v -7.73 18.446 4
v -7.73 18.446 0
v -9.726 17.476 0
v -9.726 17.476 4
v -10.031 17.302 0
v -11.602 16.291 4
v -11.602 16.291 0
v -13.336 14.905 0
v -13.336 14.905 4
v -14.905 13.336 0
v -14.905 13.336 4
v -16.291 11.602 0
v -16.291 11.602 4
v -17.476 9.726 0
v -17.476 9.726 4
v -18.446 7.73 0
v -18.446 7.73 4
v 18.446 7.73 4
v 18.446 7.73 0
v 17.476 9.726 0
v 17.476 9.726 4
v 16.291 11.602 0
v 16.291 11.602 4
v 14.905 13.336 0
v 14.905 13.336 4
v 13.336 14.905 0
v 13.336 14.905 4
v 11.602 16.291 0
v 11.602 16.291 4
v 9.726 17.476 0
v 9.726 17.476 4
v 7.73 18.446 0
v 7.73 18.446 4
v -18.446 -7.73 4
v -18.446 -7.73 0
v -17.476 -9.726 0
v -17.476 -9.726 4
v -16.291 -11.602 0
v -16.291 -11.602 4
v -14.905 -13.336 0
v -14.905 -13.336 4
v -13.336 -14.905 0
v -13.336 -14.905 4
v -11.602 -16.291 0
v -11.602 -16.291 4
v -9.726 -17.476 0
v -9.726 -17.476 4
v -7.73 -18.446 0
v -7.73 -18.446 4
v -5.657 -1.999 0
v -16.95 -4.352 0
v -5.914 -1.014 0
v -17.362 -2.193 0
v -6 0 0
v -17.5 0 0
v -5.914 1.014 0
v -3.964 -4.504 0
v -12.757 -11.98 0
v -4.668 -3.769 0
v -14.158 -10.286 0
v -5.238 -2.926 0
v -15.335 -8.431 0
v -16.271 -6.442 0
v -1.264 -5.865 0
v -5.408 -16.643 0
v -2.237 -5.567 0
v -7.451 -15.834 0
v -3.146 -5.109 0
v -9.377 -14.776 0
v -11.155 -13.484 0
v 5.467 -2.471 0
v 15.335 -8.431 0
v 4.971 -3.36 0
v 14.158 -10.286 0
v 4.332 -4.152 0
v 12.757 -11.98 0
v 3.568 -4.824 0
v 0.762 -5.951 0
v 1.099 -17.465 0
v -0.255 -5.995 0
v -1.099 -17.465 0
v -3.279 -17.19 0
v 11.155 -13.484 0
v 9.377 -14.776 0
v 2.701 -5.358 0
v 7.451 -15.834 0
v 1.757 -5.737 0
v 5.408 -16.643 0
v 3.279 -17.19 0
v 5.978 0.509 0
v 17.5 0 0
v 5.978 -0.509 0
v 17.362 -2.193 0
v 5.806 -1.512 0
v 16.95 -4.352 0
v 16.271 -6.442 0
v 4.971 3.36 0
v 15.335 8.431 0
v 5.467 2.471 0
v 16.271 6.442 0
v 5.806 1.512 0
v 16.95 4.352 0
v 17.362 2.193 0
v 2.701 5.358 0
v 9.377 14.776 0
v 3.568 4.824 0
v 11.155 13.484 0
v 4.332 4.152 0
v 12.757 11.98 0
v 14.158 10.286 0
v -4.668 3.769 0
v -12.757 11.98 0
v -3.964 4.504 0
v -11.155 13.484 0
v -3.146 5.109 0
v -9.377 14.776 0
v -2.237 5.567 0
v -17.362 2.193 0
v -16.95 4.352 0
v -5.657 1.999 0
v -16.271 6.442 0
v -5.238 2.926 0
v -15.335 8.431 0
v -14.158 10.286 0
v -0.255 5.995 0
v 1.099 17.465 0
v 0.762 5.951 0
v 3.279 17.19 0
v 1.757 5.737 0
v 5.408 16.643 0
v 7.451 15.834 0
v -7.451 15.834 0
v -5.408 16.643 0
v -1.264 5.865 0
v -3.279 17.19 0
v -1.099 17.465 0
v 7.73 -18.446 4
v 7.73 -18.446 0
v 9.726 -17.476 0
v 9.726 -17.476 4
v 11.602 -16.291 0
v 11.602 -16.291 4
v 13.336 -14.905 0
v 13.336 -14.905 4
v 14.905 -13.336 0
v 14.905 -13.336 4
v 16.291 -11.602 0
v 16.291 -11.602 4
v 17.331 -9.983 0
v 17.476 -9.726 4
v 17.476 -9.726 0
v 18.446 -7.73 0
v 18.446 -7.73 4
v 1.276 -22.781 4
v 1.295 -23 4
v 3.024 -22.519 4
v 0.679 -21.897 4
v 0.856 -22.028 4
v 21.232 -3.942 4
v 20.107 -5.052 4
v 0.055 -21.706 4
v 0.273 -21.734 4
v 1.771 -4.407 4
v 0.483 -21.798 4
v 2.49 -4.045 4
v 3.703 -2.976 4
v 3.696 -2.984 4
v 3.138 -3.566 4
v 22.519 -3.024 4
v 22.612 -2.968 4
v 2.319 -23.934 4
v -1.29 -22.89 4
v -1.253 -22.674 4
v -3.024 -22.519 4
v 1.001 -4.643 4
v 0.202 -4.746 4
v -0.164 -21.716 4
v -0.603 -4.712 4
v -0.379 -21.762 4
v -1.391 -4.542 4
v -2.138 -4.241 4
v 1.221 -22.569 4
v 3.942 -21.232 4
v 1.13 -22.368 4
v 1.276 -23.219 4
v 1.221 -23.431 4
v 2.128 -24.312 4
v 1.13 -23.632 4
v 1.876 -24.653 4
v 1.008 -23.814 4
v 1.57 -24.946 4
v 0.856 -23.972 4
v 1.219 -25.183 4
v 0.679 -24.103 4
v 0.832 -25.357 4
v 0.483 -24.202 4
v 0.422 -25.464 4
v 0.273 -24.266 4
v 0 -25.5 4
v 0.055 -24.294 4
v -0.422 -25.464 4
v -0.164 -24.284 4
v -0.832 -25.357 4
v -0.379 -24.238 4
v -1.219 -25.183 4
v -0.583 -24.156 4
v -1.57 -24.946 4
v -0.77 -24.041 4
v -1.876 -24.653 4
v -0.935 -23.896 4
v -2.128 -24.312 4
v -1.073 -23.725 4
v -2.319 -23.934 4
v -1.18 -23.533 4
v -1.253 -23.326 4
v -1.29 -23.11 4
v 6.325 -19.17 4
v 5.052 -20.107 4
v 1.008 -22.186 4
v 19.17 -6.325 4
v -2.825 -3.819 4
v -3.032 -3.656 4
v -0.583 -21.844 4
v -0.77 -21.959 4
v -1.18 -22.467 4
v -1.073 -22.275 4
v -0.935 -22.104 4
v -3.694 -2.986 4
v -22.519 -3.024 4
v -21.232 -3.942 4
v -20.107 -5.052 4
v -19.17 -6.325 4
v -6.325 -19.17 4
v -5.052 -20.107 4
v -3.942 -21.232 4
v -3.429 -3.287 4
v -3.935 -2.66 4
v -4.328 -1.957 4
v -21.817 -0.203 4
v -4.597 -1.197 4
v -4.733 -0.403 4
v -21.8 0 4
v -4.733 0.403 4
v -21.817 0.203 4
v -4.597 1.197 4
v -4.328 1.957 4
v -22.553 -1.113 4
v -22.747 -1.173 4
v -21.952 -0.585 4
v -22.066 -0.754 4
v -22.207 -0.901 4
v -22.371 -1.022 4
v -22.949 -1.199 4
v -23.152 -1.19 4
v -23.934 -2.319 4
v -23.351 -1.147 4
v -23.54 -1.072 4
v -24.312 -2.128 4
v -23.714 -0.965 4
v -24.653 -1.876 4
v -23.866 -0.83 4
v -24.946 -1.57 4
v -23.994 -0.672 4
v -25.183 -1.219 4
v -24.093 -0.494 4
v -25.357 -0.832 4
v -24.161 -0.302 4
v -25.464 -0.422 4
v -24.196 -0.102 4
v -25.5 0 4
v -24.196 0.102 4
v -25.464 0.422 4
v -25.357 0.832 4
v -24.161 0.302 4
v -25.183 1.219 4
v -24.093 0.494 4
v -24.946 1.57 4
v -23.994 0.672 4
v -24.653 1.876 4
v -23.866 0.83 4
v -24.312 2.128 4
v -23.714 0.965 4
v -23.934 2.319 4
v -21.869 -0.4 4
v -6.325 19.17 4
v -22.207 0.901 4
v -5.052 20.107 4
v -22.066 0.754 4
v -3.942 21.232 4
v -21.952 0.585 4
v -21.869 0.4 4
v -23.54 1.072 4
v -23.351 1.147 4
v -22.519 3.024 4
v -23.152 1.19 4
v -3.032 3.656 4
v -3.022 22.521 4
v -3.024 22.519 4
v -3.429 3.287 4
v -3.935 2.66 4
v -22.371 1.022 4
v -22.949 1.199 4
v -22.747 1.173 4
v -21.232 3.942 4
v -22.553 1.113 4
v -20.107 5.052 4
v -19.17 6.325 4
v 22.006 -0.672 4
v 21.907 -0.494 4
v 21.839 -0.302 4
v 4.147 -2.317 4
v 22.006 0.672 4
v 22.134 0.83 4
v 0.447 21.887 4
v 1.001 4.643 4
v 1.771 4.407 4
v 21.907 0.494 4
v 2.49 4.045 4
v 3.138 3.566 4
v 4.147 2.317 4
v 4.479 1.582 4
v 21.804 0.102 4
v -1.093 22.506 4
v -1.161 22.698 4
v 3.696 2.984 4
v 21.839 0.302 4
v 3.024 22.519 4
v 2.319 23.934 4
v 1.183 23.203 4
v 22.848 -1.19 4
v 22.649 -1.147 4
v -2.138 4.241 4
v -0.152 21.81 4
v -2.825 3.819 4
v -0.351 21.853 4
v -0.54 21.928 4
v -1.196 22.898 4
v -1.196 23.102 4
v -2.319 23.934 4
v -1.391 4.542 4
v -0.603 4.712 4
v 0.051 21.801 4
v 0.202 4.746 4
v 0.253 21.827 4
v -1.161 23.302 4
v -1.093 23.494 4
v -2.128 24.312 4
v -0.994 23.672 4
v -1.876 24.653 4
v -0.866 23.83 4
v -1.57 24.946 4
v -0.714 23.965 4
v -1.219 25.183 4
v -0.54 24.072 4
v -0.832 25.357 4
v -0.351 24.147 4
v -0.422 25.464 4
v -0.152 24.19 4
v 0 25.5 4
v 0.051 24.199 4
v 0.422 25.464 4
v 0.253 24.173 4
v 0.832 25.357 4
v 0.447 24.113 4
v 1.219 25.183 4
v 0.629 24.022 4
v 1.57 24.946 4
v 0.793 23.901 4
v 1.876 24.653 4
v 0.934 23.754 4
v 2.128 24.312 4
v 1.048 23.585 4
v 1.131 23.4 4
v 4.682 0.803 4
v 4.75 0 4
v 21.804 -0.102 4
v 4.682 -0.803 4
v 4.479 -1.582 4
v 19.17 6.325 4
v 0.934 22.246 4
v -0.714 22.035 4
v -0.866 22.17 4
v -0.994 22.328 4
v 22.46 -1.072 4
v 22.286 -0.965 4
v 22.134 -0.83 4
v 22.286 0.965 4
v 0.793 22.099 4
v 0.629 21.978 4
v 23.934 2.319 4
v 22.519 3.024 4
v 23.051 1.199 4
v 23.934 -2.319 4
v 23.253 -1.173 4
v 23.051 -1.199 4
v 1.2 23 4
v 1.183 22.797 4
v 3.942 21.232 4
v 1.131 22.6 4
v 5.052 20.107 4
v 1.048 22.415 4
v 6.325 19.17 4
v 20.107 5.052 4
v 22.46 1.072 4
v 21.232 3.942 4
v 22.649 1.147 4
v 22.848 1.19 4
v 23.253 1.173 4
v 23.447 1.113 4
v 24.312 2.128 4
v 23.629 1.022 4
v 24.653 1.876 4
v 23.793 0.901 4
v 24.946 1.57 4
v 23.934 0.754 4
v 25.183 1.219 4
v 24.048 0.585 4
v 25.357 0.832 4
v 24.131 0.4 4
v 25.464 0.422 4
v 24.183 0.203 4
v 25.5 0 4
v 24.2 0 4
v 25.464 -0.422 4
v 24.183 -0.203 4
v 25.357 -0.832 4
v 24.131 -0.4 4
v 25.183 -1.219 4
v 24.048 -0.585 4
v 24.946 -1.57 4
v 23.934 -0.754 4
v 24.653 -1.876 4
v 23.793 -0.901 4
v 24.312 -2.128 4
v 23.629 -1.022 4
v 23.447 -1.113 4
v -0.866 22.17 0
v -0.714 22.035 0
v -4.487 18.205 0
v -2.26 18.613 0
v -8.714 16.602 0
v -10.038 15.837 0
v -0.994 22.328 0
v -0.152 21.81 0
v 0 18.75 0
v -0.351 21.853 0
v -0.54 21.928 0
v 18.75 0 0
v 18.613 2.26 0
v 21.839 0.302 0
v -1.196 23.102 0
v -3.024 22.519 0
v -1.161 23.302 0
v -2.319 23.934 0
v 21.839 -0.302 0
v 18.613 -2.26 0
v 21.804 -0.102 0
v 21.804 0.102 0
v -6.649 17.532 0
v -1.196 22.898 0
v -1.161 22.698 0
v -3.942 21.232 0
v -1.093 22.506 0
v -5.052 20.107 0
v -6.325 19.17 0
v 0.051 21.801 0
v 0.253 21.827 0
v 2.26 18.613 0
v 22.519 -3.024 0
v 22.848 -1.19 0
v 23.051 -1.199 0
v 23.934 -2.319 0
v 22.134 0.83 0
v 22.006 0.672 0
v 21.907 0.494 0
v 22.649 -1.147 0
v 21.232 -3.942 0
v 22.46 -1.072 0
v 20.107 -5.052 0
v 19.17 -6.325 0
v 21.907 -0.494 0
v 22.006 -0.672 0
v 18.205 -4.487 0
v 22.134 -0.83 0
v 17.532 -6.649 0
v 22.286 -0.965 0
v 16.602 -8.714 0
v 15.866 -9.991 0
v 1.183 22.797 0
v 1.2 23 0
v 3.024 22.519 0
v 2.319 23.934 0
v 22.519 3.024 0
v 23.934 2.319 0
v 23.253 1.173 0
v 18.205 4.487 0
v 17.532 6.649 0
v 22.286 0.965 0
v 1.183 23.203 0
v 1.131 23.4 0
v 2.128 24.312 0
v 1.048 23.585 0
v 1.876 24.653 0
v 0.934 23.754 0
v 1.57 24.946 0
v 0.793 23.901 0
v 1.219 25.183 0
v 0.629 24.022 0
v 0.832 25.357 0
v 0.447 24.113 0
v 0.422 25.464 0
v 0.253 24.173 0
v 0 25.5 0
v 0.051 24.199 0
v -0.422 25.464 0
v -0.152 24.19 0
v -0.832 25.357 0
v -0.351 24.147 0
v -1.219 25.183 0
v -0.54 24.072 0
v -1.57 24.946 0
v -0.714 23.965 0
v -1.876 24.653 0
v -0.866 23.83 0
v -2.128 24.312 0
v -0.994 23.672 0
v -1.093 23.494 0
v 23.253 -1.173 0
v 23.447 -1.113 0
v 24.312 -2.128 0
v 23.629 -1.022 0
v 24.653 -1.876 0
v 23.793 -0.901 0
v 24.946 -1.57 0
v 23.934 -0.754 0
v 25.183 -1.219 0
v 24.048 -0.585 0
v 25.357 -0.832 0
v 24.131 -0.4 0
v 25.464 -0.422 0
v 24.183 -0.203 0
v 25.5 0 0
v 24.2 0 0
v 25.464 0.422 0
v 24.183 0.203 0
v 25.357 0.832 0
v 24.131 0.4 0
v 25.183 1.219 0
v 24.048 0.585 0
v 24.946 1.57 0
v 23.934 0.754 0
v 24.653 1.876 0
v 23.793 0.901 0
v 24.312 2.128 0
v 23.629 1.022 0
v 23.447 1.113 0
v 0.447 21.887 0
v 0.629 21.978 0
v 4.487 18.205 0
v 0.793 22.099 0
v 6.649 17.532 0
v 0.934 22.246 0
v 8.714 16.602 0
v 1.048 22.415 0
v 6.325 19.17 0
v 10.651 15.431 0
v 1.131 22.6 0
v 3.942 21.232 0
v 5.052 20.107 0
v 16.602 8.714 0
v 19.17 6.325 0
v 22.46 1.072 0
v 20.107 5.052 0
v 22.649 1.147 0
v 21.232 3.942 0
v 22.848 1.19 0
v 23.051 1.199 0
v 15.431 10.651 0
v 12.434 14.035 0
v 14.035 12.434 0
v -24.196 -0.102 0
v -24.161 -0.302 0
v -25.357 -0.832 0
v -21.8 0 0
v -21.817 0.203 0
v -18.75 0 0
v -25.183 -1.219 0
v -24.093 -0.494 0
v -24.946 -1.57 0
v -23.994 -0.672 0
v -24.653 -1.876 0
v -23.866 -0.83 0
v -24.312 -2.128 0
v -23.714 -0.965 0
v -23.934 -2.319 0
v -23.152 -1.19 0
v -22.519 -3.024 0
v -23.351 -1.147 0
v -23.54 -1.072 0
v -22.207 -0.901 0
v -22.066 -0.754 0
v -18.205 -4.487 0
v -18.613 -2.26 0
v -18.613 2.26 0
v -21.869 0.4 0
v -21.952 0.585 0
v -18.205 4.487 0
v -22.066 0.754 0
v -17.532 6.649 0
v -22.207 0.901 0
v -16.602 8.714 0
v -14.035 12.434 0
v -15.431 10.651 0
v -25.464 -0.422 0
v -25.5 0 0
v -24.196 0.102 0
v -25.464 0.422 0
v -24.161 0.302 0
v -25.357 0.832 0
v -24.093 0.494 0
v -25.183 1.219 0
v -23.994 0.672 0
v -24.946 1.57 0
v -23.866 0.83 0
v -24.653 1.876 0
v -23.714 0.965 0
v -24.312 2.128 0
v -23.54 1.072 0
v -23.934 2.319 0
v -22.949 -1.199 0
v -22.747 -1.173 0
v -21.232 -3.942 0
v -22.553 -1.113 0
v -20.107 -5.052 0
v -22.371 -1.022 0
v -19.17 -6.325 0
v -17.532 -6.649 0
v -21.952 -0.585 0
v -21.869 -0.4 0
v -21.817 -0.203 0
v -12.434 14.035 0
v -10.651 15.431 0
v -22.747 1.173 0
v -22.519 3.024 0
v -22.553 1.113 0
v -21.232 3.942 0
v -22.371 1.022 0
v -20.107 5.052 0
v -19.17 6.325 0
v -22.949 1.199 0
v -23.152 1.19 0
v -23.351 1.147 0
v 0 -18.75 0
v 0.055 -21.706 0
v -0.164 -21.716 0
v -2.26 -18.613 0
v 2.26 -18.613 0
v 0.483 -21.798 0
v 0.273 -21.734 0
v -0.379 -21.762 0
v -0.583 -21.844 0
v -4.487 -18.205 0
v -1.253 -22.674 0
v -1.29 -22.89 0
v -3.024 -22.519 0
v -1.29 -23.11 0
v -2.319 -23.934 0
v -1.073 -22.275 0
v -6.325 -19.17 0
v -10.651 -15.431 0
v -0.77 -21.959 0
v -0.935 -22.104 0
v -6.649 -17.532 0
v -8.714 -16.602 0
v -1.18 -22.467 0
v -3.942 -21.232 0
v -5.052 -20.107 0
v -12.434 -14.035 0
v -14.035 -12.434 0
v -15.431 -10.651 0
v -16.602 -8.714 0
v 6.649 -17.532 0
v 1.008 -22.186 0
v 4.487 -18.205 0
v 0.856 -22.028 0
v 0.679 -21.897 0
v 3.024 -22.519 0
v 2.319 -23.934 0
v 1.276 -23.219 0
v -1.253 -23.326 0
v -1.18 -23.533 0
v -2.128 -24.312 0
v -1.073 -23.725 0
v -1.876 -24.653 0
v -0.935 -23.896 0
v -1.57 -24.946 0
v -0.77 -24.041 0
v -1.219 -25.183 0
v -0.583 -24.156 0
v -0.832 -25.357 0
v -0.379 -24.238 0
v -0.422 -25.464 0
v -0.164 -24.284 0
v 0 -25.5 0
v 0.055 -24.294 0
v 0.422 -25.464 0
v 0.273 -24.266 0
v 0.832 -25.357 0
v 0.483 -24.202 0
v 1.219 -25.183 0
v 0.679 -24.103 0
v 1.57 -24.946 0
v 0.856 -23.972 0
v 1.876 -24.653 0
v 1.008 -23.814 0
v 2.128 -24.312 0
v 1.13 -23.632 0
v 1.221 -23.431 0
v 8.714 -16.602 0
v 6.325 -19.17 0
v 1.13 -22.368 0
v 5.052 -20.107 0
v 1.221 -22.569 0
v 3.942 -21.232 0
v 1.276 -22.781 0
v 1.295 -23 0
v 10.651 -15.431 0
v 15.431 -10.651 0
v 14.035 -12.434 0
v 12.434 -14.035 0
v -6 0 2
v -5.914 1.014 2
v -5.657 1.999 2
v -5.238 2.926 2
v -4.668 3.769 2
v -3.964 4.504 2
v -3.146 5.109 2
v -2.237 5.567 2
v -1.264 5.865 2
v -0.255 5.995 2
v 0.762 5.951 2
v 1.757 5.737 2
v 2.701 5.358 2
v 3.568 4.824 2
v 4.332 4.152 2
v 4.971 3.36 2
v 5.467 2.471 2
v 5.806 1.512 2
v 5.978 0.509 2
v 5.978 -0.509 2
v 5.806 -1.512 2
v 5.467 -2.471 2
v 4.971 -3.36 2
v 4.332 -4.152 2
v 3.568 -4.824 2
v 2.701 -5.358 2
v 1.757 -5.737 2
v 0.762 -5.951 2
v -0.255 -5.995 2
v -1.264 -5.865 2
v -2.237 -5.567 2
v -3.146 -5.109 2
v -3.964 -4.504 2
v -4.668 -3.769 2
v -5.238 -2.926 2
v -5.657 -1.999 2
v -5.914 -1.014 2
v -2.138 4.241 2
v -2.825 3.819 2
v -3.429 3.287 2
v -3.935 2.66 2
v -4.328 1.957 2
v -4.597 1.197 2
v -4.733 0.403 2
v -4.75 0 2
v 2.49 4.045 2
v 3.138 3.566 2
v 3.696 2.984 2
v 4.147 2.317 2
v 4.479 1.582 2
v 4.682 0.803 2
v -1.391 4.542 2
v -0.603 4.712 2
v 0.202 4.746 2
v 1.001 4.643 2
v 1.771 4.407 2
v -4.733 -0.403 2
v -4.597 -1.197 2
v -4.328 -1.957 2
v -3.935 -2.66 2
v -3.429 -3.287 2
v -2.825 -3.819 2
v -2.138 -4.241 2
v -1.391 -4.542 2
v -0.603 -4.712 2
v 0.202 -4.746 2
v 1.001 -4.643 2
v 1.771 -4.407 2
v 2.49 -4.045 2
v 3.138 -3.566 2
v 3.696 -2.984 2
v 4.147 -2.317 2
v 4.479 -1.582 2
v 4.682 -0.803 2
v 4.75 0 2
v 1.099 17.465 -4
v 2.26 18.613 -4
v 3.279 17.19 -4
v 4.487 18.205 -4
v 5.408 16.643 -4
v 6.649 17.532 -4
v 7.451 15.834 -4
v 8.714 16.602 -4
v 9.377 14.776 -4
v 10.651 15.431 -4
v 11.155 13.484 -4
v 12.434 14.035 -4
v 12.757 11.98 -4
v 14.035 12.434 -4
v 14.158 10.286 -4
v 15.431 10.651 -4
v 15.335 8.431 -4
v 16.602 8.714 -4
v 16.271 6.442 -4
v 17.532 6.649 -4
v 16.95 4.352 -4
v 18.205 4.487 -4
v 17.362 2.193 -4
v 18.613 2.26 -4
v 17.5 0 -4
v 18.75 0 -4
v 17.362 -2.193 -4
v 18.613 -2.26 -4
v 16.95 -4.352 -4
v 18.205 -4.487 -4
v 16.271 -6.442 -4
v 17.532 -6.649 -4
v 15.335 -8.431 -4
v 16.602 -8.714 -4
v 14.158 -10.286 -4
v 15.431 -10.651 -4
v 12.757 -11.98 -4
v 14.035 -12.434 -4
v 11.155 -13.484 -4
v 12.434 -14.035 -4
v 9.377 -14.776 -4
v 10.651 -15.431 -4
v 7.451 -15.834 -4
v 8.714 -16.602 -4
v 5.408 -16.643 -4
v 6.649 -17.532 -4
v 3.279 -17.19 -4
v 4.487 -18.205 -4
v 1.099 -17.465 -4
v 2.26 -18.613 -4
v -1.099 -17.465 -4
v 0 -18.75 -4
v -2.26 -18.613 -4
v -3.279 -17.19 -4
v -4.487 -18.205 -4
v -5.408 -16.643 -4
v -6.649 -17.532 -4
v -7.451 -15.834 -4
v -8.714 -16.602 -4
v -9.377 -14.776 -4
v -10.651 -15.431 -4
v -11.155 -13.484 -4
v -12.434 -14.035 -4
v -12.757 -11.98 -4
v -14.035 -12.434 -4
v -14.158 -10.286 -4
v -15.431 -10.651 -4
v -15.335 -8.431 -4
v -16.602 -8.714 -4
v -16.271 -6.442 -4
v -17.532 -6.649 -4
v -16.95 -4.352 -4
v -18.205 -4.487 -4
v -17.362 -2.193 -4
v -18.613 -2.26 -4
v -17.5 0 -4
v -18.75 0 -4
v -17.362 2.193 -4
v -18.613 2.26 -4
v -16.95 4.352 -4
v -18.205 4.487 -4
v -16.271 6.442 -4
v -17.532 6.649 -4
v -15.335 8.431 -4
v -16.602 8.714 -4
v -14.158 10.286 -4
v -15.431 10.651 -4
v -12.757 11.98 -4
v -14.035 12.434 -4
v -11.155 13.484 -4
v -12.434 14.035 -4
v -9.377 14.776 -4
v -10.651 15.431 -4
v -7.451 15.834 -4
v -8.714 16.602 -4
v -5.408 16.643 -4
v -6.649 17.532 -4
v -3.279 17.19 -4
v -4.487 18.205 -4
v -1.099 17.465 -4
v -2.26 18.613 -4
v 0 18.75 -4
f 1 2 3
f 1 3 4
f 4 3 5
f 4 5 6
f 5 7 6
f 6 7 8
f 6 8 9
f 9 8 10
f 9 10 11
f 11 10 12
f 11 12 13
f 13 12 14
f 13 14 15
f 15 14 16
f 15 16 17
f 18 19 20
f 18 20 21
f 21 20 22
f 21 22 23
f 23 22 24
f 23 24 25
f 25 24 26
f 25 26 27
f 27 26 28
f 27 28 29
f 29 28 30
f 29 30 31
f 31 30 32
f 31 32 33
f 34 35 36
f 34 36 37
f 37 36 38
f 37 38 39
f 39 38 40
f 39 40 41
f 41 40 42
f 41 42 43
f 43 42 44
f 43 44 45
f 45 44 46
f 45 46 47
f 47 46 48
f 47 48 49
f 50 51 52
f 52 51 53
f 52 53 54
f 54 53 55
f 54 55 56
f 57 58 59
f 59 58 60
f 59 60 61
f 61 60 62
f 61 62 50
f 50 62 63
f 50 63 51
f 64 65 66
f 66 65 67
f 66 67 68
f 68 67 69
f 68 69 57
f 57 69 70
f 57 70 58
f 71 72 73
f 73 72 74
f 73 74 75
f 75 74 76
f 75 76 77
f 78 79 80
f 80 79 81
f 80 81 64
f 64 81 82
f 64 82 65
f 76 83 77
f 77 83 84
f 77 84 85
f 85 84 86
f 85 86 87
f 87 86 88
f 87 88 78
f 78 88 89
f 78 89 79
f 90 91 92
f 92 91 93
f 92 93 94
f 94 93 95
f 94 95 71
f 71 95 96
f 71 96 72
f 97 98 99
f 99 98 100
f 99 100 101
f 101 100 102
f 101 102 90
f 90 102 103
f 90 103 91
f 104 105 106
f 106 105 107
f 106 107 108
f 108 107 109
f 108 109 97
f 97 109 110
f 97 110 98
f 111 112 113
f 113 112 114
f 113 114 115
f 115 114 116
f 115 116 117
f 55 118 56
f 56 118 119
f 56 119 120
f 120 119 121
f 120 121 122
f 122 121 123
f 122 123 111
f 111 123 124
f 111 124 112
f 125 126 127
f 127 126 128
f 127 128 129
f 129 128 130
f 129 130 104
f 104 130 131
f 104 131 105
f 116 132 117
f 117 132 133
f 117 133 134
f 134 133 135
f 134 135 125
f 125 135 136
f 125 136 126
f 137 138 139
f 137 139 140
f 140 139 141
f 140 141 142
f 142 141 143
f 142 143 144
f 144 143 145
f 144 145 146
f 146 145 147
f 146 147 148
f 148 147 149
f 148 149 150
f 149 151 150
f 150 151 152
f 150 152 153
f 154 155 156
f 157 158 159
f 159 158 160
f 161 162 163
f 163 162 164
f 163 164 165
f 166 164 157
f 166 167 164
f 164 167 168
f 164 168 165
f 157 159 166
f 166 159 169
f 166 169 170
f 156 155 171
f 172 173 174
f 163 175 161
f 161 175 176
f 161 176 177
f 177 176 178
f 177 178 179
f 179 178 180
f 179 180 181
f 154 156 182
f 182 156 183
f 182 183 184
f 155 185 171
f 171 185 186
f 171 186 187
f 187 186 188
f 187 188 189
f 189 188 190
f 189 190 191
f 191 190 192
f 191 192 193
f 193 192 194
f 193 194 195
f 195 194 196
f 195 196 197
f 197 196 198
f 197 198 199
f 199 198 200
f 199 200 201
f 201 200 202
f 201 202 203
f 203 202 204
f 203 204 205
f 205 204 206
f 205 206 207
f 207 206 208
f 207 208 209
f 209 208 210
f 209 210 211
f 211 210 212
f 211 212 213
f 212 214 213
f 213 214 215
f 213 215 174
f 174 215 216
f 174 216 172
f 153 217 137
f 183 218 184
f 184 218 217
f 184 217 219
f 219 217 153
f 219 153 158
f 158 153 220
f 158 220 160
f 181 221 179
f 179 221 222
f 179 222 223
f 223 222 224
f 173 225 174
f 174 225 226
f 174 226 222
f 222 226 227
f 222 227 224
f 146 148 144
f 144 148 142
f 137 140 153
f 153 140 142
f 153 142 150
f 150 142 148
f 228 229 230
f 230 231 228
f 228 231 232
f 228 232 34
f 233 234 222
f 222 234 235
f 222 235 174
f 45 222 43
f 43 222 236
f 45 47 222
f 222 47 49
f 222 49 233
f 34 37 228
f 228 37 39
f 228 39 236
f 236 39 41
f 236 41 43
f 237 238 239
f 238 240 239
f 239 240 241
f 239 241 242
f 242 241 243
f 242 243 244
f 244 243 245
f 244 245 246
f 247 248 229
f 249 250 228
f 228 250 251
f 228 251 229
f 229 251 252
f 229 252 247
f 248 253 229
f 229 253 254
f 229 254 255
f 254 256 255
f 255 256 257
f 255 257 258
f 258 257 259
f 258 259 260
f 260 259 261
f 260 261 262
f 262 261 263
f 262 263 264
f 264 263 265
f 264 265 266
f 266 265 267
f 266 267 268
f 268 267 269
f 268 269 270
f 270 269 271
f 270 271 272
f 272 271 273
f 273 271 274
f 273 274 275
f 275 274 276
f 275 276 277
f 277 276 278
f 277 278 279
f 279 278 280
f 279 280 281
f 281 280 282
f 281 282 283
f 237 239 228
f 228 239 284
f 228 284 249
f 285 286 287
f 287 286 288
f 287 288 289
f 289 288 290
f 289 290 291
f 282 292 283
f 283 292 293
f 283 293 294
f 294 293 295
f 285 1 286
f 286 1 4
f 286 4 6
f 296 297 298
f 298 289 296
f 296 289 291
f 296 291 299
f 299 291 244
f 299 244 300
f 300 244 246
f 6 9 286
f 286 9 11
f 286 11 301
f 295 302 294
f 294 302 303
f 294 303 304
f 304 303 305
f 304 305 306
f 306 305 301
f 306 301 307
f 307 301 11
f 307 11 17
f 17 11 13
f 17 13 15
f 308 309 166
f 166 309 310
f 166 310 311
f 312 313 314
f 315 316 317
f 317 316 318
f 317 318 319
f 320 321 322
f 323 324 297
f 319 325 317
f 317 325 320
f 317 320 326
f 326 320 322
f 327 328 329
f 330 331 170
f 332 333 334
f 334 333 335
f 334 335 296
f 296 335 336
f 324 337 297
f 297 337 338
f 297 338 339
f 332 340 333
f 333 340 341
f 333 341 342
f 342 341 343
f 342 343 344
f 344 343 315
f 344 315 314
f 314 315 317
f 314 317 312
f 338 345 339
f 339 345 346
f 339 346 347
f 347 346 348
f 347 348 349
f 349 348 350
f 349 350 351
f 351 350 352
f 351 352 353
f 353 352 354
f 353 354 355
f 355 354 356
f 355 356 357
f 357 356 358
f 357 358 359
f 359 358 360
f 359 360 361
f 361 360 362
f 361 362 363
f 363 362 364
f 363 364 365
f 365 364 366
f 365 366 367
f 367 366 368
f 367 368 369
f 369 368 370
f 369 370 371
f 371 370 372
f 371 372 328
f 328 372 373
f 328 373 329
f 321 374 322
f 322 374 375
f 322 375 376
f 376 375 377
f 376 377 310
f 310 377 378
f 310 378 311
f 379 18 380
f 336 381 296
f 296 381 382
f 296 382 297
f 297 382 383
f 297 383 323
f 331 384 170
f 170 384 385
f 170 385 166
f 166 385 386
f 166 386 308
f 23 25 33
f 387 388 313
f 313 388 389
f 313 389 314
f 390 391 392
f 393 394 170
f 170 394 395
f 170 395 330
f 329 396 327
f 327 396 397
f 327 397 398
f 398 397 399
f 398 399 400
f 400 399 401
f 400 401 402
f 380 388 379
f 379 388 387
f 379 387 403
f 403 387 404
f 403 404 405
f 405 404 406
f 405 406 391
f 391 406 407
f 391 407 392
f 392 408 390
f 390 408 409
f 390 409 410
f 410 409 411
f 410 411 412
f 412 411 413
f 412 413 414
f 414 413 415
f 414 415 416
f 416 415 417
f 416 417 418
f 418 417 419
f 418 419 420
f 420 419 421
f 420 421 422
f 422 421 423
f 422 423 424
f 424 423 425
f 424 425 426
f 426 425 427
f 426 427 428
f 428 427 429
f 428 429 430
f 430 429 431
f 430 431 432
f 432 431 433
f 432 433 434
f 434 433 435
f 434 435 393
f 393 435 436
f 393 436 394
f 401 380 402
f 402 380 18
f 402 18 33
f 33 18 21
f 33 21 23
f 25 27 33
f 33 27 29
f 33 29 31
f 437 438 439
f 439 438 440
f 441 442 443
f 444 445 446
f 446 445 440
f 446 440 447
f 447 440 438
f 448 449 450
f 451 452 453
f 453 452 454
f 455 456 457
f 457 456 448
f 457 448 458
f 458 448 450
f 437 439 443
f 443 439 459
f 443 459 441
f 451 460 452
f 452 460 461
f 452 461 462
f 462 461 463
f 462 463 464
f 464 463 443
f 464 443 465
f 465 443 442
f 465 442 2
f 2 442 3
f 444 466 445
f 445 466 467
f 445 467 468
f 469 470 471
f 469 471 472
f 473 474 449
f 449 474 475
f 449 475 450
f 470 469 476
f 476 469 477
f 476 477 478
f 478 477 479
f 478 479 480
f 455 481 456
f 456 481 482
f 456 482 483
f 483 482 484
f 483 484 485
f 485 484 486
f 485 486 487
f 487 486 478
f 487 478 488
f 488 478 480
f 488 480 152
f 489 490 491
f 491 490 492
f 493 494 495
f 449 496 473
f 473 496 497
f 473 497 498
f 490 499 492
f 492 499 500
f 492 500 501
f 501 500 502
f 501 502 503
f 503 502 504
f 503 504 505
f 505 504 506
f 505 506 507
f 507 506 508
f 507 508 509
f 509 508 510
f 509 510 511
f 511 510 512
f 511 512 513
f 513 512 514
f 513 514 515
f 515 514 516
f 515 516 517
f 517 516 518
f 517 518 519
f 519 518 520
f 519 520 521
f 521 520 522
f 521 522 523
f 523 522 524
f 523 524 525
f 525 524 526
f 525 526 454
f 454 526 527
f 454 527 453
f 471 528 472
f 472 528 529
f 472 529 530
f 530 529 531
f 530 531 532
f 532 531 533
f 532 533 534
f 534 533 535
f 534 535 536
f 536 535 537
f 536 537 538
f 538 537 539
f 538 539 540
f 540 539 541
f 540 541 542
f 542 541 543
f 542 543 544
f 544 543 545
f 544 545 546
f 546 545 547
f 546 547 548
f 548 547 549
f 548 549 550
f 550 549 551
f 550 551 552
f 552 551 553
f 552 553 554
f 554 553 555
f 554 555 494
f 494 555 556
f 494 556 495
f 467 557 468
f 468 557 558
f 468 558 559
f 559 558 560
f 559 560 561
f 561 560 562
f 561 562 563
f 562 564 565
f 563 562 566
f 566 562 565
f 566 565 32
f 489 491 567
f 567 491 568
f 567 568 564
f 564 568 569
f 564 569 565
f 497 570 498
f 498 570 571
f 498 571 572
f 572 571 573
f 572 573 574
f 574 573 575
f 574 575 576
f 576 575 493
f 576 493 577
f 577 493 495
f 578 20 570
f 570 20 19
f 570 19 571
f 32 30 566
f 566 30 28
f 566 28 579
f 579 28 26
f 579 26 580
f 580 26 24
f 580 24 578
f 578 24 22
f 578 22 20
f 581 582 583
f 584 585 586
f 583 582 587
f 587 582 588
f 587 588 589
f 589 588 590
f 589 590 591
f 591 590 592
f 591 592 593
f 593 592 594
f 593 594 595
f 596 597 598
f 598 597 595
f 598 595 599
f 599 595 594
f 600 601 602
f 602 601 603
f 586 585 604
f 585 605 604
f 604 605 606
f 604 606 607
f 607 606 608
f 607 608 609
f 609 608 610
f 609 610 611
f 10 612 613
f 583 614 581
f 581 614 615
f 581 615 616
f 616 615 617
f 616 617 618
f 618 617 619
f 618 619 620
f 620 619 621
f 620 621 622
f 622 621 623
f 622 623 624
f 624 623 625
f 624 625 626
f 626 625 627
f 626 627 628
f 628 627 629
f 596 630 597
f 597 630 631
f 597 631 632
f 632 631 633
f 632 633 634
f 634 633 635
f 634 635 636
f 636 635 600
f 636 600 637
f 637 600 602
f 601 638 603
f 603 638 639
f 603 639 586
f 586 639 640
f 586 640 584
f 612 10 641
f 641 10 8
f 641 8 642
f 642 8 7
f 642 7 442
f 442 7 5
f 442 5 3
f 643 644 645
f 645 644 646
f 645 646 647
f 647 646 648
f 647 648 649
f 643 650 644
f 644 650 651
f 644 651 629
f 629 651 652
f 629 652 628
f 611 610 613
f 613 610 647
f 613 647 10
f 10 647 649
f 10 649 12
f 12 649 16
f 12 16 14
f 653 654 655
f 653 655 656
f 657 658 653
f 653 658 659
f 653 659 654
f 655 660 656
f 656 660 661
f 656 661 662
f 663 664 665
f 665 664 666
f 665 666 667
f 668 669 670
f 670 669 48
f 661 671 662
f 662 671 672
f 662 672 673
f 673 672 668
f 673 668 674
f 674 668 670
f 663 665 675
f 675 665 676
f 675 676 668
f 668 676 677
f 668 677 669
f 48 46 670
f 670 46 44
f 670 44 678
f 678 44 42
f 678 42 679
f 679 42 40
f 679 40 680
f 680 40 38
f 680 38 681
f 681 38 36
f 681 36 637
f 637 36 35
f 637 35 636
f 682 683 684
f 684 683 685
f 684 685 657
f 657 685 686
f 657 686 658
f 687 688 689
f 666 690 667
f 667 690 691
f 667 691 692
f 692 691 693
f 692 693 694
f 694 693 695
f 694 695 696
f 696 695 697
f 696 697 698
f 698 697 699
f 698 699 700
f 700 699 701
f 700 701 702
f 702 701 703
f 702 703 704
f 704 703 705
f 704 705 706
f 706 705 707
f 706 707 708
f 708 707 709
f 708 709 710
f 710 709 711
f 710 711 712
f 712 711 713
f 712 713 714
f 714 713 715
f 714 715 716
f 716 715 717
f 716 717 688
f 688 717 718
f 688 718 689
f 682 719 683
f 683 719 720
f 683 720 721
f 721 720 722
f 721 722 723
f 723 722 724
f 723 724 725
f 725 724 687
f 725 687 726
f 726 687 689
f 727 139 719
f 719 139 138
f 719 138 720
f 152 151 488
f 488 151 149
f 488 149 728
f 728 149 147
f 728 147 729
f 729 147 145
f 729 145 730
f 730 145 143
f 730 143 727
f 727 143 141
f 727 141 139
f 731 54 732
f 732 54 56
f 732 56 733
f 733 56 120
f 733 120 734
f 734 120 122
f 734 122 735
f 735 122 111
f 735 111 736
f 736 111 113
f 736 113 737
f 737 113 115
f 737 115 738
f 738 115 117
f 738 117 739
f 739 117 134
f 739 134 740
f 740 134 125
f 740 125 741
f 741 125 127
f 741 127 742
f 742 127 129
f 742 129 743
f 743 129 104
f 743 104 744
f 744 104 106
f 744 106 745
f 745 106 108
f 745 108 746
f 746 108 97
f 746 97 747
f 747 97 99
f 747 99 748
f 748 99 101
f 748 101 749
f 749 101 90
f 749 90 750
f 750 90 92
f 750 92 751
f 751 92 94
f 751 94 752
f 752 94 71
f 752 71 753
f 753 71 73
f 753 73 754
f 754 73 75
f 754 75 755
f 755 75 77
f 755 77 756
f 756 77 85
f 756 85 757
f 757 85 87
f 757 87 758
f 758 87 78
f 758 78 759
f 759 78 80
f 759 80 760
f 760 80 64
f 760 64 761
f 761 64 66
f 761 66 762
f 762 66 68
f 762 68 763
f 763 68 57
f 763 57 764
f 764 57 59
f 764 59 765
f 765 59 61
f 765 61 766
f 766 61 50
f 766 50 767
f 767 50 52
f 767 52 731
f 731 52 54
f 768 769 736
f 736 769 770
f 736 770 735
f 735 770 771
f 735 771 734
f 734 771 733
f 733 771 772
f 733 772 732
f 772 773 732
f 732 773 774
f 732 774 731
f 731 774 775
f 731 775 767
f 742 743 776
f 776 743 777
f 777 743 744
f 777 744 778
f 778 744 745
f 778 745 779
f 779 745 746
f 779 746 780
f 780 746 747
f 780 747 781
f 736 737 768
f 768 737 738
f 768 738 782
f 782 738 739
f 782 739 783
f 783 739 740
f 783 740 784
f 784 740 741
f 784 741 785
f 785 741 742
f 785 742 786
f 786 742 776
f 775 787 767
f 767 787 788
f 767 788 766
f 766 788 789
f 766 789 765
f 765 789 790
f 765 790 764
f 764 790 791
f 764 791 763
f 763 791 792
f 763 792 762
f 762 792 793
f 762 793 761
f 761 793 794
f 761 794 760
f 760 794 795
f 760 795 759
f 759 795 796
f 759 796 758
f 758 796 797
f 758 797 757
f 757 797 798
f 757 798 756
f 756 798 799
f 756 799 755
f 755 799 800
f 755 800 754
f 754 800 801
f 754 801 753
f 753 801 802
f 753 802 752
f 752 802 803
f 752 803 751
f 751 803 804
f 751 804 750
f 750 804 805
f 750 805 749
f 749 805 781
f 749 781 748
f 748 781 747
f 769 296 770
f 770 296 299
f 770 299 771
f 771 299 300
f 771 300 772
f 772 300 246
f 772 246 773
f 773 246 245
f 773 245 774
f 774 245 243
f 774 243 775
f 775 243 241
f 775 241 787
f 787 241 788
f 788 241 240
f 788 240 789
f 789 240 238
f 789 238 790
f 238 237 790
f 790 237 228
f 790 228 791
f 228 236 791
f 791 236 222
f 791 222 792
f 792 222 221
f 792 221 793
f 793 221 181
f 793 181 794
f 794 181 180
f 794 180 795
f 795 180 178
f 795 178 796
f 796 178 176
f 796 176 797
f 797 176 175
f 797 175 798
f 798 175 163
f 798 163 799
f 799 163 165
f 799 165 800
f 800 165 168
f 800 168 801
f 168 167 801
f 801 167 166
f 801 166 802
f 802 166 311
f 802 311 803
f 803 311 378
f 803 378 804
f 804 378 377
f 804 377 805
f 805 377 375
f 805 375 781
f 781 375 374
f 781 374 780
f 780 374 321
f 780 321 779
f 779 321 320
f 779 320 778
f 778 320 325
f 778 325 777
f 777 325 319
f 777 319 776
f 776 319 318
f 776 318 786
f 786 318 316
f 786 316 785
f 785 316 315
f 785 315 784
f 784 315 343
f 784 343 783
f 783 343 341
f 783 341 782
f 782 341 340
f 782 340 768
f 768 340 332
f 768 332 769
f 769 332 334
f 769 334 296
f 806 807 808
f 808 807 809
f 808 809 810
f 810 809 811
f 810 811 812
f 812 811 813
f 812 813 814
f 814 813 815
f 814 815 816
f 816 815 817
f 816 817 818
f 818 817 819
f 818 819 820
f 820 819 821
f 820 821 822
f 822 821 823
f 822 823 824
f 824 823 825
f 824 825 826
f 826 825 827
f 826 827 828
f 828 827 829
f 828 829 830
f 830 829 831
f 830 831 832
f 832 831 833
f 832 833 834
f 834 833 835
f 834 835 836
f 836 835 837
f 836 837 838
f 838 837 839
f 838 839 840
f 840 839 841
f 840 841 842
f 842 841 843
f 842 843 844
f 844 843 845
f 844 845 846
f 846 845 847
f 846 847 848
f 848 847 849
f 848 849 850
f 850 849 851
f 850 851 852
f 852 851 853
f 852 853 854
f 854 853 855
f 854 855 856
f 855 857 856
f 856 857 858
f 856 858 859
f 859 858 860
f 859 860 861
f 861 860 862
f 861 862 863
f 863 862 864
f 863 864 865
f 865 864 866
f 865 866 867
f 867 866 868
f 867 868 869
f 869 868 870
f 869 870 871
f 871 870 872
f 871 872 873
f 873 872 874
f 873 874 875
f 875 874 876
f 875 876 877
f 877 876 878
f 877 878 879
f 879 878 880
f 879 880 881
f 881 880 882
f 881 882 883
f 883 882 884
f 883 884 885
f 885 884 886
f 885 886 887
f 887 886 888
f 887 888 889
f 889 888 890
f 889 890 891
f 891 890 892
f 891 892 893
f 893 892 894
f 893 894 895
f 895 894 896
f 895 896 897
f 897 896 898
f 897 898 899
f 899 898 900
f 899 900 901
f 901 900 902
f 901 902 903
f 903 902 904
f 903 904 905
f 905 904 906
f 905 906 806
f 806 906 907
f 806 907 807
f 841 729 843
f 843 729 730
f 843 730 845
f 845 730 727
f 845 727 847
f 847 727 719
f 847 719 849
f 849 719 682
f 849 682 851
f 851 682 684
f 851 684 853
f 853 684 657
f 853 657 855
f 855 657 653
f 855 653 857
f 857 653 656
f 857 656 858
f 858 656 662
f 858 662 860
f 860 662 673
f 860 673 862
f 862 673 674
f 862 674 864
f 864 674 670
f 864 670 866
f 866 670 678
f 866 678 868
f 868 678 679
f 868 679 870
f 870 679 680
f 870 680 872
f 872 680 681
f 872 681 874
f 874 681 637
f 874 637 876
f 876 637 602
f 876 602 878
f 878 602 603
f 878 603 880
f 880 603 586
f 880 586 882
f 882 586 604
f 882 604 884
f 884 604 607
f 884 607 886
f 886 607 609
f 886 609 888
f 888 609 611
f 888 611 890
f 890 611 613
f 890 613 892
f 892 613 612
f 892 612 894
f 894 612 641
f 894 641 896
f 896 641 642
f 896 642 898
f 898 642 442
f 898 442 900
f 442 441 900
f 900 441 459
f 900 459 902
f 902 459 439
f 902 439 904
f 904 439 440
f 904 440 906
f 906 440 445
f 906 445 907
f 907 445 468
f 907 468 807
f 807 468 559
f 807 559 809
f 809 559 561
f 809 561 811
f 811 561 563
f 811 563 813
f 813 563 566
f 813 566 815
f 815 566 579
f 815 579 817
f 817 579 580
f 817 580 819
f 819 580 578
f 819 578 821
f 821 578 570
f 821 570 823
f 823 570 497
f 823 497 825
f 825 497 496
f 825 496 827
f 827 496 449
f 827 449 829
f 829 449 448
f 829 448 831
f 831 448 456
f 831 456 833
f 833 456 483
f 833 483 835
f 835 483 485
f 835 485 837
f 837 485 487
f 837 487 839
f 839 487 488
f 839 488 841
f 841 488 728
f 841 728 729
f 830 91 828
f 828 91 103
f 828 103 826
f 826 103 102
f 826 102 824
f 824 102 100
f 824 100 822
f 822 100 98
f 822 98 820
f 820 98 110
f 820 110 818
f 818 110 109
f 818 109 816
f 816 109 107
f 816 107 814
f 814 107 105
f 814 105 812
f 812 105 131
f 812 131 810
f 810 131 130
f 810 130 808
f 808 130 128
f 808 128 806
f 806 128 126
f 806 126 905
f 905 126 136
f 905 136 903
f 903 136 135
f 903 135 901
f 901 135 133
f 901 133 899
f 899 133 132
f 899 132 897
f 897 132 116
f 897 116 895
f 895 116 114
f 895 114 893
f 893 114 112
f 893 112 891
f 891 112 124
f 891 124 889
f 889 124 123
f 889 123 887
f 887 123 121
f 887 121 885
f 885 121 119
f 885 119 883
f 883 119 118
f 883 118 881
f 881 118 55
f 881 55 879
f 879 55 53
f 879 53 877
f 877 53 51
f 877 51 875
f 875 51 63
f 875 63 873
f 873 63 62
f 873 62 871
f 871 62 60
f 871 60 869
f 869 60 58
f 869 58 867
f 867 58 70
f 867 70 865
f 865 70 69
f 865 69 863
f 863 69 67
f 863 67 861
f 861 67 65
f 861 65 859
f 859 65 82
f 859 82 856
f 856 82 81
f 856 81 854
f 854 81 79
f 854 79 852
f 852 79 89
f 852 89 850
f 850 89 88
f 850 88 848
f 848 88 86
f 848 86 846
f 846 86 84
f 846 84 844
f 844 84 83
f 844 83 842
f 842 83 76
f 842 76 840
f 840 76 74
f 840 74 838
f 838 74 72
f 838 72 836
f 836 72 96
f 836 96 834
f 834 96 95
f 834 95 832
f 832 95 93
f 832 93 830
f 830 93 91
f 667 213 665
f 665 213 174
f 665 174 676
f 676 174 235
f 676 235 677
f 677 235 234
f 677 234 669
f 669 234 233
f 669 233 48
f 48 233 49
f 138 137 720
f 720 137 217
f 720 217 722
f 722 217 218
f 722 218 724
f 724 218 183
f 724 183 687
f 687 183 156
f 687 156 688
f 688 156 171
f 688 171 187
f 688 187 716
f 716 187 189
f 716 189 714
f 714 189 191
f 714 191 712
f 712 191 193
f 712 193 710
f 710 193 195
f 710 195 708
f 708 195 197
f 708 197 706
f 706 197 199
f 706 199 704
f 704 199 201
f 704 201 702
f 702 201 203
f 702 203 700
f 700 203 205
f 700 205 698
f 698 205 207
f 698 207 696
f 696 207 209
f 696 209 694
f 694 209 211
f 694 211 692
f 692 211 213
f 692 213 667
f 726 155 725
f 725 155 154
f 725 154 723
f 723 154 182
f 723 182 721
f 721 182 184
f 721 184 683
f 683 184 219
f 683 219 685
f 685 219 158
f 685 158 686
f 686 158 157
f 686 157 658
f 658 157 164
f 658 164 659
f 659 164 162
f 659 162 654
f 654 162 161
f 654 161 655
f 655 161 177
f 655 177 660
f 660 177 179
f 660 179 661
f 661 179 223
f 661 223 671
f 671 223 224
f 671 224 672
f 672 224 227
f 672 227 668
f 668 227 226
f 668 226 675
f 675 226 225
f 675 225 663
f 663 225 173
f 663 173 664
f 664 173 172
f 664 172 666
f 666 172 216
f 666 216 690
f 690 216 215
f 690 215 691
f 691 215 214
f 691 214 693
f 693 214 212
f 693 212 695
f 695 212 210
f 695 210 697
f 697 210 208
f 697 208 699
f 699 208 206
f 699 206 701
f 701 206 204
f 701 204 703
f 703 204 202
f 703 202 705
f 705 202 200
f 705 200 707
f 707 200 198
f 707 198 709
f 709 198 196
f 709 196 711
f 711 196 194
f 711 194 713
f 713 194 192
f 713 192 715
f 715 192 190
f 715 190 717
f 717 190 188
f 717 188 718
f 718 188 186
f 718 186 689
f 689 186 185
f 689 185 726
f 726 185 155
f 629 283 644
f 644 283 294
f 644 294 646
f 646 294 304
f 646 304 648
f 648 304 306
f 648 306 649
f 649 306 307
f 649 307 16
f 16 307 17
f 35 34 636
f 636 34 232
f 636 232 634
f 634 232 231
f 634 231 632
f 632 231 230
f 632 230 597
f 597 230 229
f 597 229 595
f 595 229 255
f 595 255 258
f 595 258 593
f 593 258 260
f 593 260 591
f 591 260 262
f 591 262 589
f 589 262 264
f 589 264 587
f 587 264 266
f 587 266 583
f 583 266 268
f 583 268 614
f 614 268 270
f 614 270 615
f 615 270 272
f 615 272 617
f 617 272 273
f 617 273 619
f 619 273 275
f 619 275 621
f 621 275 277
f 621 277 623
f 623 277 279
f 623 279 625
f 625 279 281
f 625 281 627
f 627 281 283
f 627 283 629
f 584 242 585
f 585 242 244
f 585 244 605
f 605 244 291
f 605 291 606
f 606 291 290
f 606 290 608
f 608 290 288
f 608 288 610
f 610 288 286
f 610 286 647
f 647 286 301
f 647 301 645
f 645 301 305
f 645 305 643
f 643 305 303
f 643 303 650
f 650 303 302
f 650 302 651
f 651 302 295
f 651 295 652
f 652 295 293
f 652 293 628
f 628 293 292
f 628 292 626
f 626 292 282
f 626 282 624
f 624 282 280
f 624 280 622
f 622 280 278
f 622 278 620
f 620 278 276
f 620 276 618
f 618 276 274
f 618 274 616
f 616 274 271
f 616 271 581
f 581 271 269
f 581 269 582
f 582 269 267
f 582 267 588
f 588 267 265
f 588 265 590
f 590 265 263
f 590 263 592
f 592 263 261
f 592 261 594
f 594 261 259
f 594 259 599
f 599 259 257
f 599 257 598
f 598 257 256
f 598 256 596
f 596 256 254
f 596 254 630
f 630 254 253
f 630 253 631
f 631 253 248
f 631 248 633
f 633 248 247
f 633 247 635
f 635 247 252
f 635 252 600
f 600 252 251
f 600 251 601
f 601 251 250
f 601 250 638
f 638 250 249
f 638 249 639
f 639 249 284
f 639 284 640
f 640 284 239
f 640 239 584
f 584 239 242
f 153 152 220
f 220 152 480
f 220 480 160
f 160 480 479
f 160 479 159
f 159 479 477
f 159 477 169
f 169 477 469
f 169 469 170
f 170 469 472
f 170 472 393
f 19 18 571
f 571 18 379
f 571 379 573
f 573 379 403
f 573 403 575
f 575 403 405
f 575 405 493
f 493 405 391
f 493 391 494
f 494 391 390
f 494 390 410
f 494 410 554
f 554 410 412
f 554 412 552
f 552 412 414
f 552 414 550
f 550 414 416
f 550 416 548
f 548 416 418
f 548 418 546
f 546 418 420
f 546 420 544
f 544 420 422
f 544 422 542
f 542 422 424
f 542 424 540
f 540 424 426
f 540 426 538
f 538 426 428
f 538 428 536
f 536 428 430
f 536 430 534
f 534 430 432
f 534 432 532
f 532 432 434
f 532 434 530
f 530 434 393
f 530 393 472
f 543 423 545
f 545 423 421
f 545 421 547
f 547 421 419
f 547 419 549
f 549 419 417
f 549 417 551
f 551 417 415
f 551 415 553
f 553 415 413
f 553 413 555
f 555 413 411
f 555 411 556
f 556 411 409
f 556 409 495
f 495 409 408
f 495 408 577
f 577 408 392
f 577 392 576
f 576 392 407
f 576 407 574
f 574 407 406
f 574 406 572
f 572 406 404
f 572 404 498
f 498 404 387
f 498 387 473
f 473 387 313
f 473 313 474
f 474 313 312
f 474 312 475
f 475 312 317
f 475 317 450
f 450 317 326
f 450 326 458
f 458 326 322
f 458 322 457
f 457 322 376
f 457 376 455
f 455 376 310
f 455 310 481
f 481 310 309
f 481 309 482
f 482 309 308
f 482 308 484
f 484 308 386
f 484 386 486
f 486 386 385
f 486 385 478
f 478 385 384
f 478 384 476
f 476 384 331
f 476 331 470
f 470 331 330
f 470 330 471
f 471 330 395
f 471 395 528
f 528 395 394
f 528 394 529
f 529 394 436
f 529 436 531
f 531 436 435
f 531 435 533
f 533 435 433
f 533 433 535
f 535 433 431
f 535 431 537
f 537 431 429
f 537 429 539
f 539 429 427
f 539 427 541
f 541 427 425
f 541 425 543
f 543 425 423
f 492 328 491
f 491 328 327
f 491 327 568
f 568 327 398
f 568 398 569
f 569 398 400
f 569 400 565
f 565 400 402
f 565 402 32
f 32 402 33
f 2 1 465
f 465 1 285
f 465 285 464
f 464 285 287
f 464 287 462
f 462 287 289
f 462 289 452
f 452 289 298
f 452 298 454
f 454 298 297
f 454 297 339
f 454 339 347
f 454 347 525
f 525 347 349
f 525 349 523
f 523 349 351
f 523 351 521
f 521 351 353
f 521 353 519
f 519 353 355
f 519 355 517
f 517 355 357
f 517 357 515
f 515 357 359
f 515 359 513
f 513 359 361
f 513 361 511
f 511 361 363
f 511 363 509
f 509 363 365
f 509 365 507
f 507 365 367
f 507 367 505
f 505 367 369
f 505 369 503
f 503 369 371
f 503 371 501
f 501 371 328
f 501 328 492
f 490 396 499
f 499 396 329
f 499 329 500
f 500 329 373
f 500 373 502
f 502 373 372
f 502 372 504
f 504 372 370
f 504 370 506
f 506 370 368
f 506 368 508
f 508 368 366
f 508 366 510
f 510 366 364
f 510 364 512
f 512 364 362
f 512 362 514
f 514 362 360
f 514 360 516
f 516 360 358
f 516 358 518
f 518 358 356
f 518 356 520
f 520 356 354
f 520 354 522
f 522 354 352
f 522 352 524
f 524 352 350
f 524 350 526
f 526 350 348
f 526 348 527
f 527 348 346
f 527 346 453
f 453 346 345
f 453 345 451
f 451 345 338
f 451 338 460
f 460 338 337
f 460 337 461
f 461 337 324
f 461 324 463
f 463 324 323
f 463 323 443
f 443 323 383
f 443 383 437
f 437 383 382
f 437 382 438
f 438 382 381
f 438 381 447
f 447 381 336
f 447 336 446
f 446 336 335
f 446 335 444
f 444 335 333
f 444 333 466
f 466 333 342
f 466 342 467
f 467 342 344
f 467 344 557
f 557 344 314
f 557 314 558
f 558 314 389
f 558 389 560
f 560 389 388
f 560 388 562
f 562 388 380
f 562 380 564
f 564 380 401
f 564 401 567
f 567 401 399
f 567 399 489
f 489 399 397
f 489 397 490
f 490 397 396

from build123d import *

# Parameters (mm, degrees)
SKETCH_1_R          = 20
EXTRUDE_1_DEPTH     = 4
SKETCH_2_R          = 6
CUT_EXTRUDE_1_DEPTH = 2
SKETCH_3_R          = 4.75
CUT_EXTRUDE_2_DEPTH = 22
SKETCH_4_R          = 18.75
SKETCH_4_R_2        = 17.5
EXTRUDE_2_DEPTH     = 4
SKETCH_5_R          = 1.294929457
SKETCH_5_R_2        = 1.2
EXTRUDE_3_DEPTH     = 4


with BuildPart() as part:
    # 草图1 → 凸台-拉伸1 (new body)
    with BuildSketch(Plane.XY):
        Circle(SKETCH_1_R)
    extrude(amount=EXTRUDE_1_DEPTH)

    # 草图2 → 切除-拉伸1 (cut)
    with BuildSketch(Plane(origin=(0, 0, 0), x_dir=(-1, 0, 0), z_dir=(0, 0, -1))):
        Circle(SKETCH_2_R)
    extrude(amount=-CUT_EXTRUDE_1_DEPTH, mode=Mode.SUBTRACT)

    # 草图3 → 切除-拉伸2 (cut)
    with BuildSketch(Plane.XY.offset(4)):
        Circle(SKETCH_3_R)
    extrude(amount=-CUT_EXTRUDE_2_DEPTH, mode=Mode.SUBTRACT)

    # 草图4 → 凸台-拉伸2 (add)
    with BuildSketch(Plane(origin=(0, 0, 0), x_dir=(-1, 0, 0), z_dir=(0, 0, -1))):
        Circle(SKETCH_4_R)
        Circle(SKETCH_4_R_2, mode=Mode.SUBTRACT)
    extrude(amount=EXTRUDE_2_DEPTH)

    # 草图5 → 凸台-拉伸3 (add)
    with BuildSketch(Plane.XY.offset(4)):
        with BuildLine():
            ThreePointArc((-2.319097331, -23.933695652), (0, -25.5), (2.319097331, -23.933695652))
            ThreePointArc((2.319097331, -23.933695652), (4.474759898, -20.647420615), (7.730324436, -18.445652174))
            ThreePointArc((7.730324436, -18.445652174), (0, -20), (-7.730324436, -18.445652174))
            ThreePointArc((-7.730324436, -18.445652174), (-4.474759898, -20.647420615), (-2.319097331, -23.933695652))
        make_face()
        with Locations((0, -23)):
            Circle(SKETCH_5_R, mode=Mode.SUBTRACT)
        with BuildLine():
            ThreePointArc((-23.933695652, 2.319097331), (-25.5, 0), (-23.933695652, -2.319097331))
            ThreePointArc((-23.933695652, -2.319097331), (-20.647420615, -4.474759898), (-18.445652174, -7.730324436))
            ThreePointArc((-18.445652174, -7.730324436), (-20, 0), (-18.445652174, 7.730324436))
            ThreePointArc((-18.445652174, 7.730324436), (-20.647420615, 4.474759898), (-23.933695652, 2.319097331))
        make_face()
        with Locations((-23, 0)):
            Circle(SKETCH_5_R_2, mode=Mode.SUBTRACT)
        with BuildLine():
            ThreePointArc((23.933695652, -2.319097331), (25.5, 0), (23.933695652, 2.319097331))
            ThreePointArc((23.933695652, 2.319097331), (20.647420615, 4.474759898), (18.445652174, 7.730324436))
            ThreePointArc((18.445652174, 7.730324436), (20, 0), (18.445652174, -7.730324436))
            ThreePointArc((18.445652174, -7.730324436), (20.647420615, -4.474759898), (23.933695652, -2.319097331))
        make_face()
        with Locations((23, 0)):
            Circle(SKETCH_5_R_2, mode=Mode.SUBTRACT)
        with BuildLine():
            ThreePointArc((2.319097331, 23.933695652), (0, 25.5), (-2.319097331, 23.933695652))
            ThreePointArc((-2.319097331, 23.933695652), (-4.474759898, 20.647420615), (-7.730324436, 18.445652174))
            ThreePointArc((-7.730324436, 18.445652174), (0, 20), (7.730324436, 18.445652174))
            ThreePointArc((7.730324436, 18.445652174), (4.474759898, 20.647420615), (2.319097331, 23.933695652))
        make_face()
        with Locations((0, 23)):
            Circle(SKETCH_5_R_2, mode=Mode.SUBTRACT)
    extrude(amount=-EXTRUDE_3_DEPTH)


solid = part.part
